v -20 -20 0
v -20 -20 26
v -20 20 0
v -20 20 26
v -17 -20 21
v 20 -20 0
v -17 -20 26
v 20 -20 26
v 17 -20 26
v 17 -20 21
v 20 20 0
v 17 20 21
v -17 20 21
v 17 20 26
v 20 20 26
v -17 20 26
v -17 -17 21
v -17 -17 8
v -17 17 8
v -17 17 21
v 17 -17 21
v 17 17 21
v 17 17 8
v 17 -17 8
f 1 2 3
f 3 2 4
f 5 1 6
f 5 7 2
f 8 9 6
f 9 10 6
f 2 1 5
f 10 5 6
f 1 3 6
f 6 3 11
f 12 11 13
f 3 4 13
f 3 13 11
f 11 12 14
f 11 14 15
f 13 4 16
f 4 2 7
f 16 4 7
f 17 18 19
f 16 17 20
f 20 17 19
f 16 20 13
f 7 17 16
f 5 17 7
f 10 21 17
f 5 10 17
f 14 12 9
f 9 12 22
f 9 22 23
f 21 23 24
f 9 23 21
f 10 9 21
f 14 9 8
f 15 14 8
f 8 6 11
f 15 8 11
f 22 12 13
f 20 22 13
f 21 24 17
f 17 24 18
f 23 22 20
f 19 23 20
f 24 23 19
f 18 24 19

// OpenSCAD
difference() {
	translate([-20,-20,0]) cube([40,40,26]);
	translate([-17,-17,8]) cube([34,34,19]);
	translate([-17,-21,21]) cube([34,42,6]);
}
